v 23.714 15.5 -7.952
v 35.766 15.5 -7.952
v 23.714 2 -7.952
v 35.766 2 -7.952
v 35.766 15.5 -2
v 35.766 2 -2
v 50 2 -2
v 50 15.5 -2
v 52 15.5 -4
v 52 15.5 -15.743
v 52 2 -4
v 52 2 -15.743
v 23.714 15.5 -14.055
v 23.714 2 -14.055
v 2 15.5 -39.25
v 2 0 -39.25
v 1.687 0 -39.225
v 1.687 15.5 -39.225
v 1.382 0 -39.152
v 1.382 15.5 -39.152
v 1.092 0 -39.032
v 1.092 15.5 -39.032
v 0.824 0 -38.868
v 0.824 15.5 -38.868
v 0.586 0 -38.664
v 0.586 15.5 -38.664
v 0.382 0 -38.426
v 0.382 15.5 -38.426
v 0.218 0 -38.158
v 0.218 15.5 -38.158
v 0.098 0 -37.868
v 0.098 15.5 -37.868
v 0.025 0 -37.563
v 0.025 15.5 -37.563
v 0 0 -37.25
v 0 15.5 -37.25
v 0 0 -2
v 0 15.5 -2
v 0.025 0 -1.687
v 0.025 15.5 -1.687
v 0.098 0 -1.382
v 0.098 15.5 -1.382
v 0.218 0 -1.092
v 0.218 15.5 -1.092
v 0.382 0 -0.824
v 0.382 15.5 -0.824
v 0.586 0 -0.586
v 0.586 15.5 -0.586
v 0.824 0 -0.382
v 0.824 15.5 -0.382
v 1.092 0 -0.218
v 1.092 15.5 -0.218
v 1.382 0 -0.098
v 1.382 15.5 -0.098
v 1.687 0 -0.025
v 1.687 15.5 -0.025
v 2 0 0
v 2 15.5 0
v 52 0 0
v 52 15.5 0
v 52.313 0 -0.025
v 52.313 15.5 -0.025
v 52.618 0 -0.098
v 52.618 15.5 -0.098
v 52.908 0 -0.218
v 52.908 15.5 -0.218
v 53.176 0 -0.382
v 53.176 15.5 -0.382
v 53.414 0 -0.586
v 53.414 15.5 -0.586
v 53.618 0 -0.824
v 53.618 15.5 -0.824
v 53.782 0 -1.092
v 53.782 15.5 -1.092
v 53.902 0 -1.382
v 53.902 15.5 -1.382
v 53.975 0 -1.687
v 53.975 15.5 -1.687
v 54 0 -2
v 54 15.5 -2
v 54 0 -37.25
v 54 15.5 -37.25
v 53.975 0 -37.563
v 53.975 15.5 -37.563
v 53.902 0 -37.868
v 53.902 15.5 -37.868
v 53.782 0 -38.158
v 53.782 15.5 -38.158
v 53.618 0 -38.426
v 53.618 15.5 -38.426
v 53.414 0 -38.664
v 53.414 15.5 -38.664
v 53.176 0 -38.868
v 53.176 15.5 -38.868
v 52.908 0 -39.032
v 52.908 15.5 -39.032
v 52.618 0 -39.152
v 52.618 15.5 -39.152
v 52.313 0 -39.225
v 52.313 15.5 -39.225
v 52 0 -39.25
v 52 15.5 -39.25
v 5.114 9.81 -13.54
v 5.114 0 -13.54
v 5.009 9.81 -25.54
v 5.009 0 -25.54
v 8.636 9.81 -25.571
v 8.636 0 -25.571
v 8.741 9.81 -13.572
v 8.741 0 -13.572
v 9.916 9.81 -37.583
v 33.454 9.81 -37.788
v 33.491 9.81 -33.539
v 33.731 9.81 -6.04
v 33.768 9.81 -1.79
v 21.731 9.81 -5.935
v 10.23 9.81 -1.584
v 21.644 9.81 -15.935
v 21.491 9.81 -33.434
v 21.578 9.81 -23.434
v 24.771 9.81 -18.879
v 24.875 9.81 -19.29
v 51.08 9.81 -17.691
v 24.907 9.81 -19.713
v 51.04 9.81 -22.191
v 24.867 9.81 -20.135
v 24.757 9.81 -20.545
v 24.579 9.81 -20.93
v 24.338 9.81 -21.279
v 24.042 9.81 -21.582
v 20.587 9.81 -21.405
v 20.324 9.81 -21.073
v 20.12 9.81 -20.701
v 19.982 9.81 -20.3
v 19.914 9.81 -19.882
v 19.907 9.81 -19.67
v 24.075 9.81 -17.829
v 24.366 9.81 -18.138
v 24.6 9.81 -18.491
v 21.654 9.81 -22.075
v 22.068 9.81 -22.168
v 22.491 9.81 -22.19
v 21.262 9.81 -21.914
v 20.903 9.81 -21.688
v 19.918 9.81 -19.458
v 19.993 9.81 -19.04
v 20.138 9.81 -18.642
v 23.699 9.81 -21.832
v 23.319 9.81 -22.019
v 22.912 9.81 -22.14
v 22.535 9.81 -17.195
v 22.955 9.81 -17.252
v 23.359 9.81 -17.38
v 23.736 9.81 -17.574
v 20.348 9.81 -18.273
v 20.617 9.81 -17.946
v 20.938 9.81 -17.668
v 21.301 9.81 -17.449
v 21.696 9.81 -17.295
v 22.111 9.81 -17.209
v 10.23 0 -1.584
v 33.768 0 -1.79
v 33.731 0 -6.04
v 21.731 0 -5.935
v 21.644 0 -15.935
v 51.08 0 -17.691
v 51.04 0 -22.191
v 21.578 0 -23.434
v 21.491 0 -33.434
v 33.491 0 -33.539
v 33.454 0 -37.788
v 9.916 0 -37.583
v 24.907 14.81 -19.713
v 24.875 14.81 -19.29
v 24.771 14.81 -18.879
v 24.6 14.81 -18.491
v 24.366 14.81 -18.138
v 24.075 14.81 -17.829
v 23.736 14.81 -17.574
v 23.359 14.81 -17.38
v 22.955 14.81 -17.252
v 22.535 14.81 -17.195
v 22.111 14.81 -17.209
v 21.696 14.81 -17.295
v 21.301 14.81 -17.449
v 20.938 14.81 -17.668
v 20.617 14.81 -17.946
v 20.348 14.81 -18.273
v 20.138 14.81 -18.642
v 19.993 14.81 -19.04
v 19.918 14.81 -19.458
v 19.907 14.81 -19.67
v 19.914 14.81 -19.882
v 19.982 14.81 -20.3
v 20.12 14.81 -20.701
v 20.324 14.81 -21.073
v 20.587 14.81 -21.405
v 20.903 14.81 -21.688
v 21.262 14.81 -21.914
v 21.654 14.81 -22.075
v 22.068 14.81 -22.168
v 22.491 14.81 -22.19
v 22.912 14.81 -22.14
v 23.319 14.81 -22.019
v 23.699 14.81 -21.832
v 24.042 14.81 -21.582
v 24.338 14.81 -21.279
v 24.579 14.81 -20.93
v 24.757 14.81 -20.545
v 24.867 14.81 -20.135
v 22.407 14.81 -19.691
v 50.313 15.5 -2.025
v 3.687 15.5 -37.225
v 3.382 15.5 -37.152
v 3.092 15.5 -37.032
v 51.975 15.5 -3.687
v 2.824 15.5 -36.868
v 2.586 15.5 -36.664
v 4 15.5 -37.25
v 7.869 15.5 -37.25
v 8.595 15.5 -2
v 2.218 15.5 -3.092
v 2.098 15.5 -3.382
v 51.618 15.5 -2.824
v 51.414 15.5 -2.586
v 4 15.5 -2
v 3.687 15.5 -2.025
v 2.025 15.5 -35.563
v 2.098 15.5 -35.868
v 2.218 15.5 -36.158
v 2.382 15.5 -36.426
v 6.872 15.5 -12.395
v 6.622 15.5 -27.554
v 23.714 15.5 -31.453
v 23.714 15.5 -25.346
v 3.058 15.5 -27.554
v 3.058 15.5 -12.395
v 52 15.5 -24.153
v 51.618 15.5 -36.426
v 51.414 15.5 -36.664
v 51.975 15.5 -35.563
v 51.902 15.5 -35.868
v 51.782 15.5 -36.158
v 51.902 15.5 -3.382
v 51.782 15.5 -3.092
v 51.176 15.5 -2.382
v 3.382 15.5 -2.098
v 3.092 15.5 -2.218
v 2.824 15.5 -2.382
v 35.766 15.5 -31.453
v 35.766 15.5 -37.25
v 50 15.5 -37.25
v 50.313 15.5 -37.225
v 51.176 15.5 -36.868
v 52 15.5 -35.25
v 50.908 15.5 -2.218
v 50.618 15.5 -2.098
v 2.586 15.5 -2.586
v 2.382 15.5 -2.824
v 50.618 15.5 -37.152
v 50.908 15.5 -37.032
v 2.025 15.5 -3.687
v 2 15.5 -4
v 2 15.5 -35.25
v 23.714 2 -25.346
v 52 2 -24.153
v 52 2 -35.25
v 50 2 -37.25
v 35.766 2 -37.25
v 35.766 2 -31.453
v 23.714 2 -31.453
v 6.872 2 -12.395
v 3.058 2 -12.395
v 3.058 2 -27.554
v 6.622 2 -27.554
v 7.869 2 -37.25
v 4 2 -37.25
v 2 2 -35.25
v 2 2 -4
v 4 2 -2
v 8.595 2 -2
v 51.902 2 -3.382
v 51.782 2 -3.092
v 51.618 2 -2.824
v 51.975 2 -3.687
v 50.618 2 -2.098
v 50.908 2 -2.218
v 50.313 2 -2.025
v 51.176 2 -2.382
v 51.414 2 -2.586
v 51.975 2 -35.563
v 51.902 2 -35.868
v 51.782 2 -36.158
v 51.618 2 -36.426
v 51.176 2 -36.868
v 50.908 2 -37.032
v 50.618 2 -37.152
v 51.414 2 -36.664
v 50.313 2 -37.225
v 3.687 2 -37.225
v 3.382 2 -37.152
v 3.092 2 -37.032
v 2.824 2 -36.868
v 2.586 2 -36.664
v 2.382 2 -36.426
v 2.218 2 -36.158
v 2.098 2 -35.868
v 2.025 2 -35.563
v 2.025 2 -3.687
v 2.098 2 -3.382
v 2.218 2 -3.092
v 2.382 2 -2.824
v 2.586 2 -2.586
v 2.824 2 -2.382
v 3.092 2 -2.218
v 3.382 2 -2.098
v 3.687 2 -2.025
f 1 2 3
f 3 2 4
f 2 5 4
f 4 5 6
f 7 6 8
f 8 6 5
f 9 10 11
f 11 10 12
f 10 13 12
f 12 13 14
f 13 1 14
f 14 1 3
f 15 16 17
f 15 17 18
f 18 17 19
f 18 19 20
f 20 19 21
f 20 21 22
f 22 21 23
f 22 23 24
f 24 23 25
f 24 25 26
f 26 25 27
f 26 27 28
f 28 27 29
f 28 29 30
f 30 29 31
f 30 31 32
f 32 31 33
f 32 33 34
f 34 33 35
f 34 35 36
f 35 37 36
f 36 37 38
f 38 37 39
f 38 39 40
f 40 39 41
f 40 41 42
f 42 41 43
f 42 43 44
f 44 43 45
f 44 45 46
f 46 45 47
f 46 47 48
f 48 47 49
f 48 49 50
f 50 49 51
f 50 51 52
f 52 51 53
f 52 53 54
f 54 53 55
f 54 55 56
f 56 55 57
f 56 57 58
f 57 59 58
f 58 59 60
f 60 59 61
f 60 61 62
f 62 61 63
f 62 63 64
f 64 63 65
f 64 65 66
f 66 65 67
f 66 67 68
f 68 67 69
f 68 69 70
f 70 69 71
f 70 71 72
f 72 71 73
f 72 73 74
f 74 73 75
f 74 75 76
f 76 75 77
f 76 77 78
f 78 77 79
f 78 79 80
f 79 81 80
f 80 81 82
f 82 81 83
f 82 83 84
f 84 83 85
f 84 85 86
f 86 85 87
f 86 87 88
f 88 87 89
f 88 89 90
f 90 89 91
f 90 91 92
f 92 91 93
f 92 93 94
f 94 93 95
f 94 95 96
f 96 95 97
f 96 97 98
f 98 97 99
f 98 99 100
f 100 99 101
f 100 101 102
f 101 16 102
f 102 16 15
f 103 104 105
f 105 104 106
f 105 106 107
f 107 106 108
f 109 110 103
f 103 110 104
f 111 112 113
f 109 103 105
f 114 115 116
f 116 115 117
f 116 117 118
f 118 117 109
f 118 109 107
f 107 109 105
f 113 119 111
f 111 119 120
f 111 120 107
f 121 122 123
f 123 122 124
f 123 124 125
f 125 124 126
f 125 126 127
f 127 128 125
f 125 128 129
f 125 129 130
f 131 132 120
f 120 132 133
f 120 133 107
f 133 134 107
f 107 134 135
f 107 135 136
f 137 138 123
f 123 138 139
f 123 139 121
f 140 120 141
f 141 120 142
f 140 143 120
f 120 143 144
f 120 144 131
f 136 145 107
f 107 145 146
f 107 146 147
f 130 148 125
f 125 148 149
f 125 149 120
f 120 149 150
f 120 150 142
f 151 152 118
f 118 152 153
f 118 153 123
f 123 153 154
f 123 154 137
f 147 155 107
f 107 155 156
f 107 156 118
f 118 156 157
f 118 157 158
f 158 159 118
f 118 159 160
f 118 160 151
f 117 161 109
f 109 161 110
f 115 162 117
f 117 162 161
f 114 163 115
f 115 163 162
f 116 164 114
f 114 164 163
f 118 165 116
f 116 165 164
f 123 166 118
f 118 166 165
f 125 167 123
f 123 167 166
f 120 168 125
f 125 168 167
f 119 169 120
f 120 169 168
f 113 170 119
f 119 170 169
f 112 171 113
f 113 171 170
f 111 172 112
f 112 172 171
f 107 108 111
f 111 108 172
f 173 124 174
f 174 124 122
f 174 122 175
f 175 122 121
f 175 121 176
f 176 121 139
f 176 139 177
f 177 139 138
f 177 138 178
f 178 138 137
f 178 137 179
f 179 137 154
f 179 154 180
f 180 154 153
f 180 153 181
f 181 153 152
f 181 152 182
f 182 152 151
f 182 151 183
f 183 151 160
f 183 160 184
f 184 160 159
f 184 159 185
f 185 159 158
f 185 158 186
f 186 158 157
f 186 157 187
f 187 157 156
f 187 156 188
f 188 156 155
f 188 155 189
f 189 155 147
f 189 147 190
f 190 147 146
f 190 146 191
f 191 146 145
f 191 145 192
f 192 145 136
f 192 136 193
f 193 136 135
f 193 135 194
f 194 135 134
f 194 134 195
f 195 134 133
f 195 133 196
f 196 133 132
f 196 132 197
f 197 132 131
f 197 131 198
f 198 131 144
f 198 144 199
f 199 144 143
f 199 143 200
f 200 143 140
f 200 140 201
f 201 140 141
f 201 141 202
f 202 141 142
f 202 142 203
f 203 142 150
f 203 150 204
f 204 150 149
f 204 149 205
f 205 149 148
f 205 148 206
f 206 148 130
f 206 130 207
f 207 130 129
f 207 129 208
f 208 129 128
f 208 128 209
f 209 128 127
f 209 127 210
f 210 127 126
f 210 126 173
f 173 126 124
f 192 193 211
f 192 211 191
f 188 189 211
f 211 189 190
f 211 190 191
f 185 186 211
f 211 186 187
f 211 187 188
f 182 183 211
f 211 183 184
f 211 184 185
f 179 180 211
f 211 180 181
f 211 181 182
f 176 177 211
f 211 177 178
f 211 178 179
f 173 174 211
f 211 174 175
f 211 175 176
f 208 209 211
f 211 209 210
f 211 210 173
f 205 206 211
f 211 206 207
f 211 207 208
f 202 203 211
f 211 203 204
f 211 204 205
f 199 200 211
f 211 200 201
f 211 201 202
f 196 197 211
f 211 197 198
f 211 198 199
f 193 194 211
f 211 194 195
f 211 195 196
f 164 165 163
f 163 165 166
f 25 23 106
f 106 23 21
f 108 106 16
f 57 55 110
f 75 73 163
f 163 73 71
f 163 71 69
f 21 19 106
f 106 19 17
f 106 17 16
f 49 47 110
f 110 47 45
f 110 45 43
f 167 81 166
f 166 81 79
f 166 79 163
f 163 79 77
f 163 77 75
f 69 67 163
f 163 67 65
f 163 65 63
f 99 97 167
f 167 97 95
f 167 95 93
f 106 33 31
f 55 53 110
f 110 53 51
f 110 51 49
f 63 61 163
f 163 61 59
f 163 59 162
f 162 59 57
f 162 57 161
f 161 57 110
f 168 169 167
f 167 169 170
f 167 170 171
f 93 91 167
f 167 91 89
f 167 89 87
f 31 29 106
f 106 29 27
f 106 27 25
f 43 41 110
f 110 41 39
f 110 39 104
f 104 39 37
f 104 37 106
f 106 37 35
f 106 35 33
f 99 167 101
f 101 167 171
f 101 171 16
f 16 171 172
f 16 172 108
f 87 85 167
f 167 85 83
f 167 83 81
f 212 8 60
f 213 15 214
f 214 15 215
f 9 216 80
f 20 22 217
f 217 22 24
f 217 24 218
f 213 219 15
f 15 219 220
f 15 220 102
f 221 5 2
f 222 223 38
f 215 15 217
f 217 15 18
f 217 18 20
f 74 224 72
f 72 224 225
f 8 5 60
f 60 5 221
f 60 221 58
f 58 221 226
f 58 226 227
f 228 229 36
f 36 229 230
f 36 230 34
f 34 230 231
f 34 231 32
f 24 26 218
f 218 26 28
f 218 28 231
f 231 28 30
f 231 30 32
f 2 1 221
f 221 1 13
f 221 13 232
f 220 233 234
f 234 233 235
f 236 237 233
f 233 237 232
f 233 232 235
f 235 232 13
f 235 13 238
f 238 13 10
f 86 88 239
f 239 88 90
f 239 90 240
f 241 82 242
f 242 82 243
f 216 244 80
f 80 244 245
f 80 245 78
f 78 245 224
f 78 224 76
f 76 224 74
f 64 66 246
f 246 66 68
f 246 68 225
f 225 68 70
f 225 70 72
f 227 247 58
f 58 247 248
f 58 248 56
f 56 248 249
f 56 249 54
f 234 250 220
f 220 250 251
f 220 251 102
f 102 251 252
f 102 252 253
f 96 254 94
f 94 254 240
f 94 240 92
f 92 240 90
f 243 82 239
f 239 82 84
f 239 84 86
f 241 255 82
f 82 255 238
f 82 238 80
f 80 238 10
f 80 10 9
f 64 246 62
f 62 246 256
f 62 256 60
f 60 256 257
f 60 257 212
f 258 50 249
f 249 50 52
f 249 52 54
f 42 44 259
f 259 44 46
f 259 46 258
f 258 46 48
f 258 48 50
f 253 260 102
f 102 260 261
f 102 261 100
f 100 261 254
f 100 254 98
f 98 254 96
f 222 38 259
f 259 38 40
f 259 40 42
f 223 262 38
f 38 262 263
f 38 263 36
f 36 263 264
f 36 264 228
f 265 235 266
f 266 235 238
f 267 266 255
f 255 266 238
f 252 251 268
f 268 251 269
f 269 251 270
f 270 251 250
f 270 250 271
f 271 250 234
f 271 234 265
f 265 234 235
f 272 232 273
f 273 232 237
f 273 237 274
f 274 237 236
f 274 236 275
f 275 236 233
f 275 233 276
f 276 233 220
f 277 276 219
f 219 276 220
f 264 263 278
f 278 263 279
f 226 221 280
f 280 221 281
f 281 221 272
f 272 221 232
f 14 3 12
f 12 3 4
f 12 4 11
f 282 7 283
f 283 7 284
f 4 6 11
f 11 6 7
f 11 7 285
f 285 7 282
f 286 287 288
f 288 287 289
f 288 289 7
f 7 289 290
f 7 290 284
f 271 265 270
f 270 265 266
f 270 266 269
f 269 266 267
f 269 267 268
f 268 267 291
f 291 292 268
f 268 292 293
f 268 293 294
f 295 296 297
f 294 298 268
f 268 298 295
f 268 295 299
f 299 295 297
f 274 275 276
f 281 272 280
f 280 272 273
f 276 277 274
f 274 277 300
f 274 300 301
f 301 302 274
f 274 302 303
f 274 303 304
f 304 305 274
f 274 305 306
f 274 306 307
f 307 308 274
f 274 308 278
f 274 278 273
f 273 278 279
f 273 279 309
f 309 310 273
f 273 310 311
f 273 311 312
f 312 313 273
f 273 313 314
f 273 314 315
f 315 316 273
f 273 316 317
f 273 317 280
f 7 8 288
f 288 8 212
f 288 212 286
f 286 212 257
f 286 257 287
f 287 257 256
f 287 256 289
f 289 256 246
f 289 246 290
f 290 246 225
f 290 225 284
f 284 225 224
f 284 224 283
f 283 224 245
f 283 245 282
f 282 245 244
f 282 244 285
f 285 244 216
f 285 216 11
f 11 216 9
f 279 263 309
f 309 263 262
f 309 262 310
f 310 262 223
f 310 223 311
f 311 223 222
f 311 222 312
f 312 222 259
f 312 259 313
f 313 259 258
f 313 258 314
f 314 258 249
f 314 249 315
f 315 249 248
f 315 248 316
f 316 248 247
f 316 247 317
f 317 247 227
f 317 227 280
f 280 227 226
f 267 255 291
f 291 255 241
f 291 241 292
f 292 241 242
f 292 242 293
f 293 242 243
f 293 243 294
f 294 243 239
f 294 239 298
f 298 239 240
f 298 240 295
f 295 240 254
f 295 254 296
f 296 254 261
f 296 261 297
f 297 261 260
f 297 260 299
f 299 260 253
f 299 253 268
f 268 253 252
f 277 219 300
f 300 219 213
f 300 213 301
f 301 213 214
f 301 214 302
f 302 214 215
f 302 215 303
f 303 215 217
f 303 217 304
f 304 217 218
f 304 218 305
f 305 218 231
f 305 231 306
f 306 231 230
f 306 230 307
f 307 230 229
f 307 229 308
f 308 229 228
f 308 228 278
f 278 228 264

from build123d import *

# Parameters (mm, degrees)
SKETCH1_W              = 54
SKETCH1_H              = 39.25
BOSS_EXTRUDE1_DEPTH    = 46.5
FILLET1_R              = 2
FILLET2_R              = 2
Z_95_START             = -0.023652431
Z_95_BLANK_DEPTH       = 10
Z_95_START_2           = -5.023652431
Z_95_BLANK_2_OUTLINE_R = 2.5
Z_95_BLANK_2_DEPTH     = 5
BODY_MOVE_COPY3_ANGLE  = 180
BODY_MOVE_COPY4_ANGLE  = 89.5
SKETCH4_W              = 54
SKETCH4_H              = 39.25
CUT_EXTRUDE1_DEPTH     = 31
CUT_EXTRUDE2_DEPTH     = 31
BOSS_EXTRUDE2_DEPTH    = 2
FILLET3_R              = 2
FILLET4_R              = 2
FILLET5_R              = 2
FILLET6_R              = 2


with BuildPart() as part:
    # Sketch1 → Boss-Extrude1 (new body)
    with BuildSketch(Plane(origin=(0, 0, 0), x_dir=(1, 0, 0), z_dir=(0, 1, 0))):
        with Locations((27, 19.625)):
            Rectangle(SKETCH1_W, SKETCH1_H)
    extrude(amount=BOSS_EXTRUDE1_DEPTH)

    # Fillet1
    fillet1_edges = [part.edges().sort_by_distance(p)[0] for p in [
        (0, 23.25, 0),
    ]]
    fillet(fillet1_edges, radius=FILLET1_R)

    # Fillet2
    fillet2_edges = [part.edges().sort_by_distance(p)[0] for p in [
        (0, 23.25, -39.25),
        (54, 23.25, -39.25),
        (54, 23.25, 0),
    ]]
    fillet(fillet2_edges, radius=FILLET2_R)


with BuildPart() as body_2:
    # Z-95 Blank: read off the stored shape, not the designer's step
    # Z-95 Blank outline → Z-95 Blank (new body)
    with BuildSketch(Plane(origin=(0, 0, 0), x_dir=(1, 0, 0), z_dir=(0, 1, 0)).offset(Z_95_START)):
        Polygon((-39.475833264, 51.689675598), (-39.475833264, 48.062948495), (-51.475833264, 46.678320586), (-51.475833264, 23.139646129), (-47.225833264, 23.139646129), (-47.225833264, 35.139646129), (-37.225833264, 35.139646129), (-35.725833264, 5.689675598), (-31.225833264, 5.689675598), (-29.725833264, 35.139646129), (-19.725833264, 35.139646129), (-19.725833264, 23.139646129), (-15.475833264, 23.139646129), (-15.475833264, 46.678320586), (-27.475833264, 48.062948495), (-27.475833264, 51.689675598), align=None)
    extrude(amount=Z_95_BLANK_DEPTH)

    # Z-95 Blank 2 outline → Z-95 Blank 2 (add)
    with BuildSketch(Plane(origin=(0, 0, 0), x_dir=(1, 0, 0), z_dir=(0, 1, 0)).offset(Z_95_START_2)):
        with Locations((-33.475833264, 34.343753809)):
            Circle(Z_95_BLANK_2_OUTLINE_R)
    extrude(amount=Z_95_BLANK_2_DEPTH)


with BuildPart() as body_2_1:
    # Body-Move/Copy3: moved
    add(body_2.part.rotate(Axis((0, 2.476347569, -28.689675598), (1, 0, 0)), BODY_MOVE_COPY3_ANGLE))


with BuildPart() as body_2_2:
    # Body-Move/Copy4: moved
    add(body_2_1.part.rotate(Axis((-33.475833264, 0, -28.689675598), (0, -1, 0)), BODY_MOVE_COPY4_ANGLE))


with BuildPart() as body_2_3:
    # Body-Move/Copy5: moved
    add(body_2_2.part.moved(Location((61.536777905, 5.06338101, 8.948981511))))


with BuildPart() as body_2_4:
    # Body-Move/Copy6: moved
    add(body_2_3.part.moved(Location((0, -0.229742035, 0))))


with BuildPart() as part_1:
    add(part.part)

    # Intersect1: read off the stored shape, not the designer's step
    # Intersect1: cut body 2
    add(body_2_4.part, mode=Mode.SUBTRACT)

    # Sketch4 → Cut-Extrude1 (cut)
    with BuildSketch(Plane(origin=(0, 46.5, 0), x_dir=(1, 0, 0), z_dir=(0, 1, 0))):
        with Locations((27, 19.625)):
            Rectangle(SKETCH4_W, SKETCH4_H)
    extrude(amount=-CUT_EXTRUDE1_DEPTH, mode=Mode.SUBTRACT)

    # Sketch5 → Cut-Extrude2 (cut)
    with BuildSketch(Plane(origin=(0, 0, 0), x_dir=(-1, 0, 0), z_dir=(0, -1, 0))):
        Polygon((-23.713680343, 7.952308665), (-23.713680343, 14.054528407), (-52, 15.742860627), (-52, 2), (-35.766082295, 2), (-35.766082295, 7.952308665), align=None)
        Polygon((-23.713680343, 25.345964802), (-23.713680343, 31.453203507), (-35.766082295, 31.453203507), (-35.766082295, 37.25), (-52, 37.25), (-52, 24.152615413), align=None)
        Polygon((-6.871546498, 12.395456139), (-8.594812047, 2), (-2, 2), (-2, 37.25), (-7.869100925, 37.25), (-6.622123507, 27.553904956), (-3.057950712, 27.553904956), (-3.057950712, 12.395456139), align=None)
    extrude(amount=-CUT_EXTRUDE2_DEPTH, mode=Mode.SUBTRACT)

    # Sketch6 → Boss-Extrude2 (add)
    with BuildSketch(Plane.XZ):
        Polygon((52, -24.152615413), (23.713680343, -25.345964802), (23.713680343, -31.453203507), (35.766082295, -31.453203507), (35.766082295, -37.25), (52, -37.25), align=None)
        Polygon((52, -15.742860627), (23.713680343, -14.054528407), (23.713680343, -7.952308665), (35.766082295, -7.952308665), (35.766082295, -2), (52, -2), align=None)
        Polygon((8.594812047, -2), (6.871546498, -12.395456139), (3.057950712, -12.395456139), (3.057950712, -27.553904956), (6.622123507, -27.553904956), (7.869100925, -37.25), (2, -37.25), (2, -2), align=None)
    extrude(amount=-BOSS_EXTRUDE2_DEPTH)

    # Fillet3
    fillet3_edges = [part_1.edges().sort_by_distance(p)[0] for p in [
        (52, 8.75, -2),
    ]]
    fillet(fillet3_edges, radius=FILLET3_R)

    # Fillet4
    fillet4_edges = [part_1.edges().sort_by_distance(p)[0] for p in [
        (2, 8.75, -2),
    ]]
    fillet(fillet4_edges, radius=FILLET4_R)

    # Fillet5
    fillet5_edges = [part_1.edges().sort_by_distance(p)[0] for p in [
        (52, 8.75, -37.25),
    ]]
    fillet(fillet5_edges, radius=FILLET5_R)

    # Fillet6
    fillet6_edges = [part_1.edges().sort_by_distance(p)[0] for p in [
        (2, 8.75, -37.25),
    ]]
    fillet(fillet6_edges, radius=FILLET6_R)


solid = part_1.part
